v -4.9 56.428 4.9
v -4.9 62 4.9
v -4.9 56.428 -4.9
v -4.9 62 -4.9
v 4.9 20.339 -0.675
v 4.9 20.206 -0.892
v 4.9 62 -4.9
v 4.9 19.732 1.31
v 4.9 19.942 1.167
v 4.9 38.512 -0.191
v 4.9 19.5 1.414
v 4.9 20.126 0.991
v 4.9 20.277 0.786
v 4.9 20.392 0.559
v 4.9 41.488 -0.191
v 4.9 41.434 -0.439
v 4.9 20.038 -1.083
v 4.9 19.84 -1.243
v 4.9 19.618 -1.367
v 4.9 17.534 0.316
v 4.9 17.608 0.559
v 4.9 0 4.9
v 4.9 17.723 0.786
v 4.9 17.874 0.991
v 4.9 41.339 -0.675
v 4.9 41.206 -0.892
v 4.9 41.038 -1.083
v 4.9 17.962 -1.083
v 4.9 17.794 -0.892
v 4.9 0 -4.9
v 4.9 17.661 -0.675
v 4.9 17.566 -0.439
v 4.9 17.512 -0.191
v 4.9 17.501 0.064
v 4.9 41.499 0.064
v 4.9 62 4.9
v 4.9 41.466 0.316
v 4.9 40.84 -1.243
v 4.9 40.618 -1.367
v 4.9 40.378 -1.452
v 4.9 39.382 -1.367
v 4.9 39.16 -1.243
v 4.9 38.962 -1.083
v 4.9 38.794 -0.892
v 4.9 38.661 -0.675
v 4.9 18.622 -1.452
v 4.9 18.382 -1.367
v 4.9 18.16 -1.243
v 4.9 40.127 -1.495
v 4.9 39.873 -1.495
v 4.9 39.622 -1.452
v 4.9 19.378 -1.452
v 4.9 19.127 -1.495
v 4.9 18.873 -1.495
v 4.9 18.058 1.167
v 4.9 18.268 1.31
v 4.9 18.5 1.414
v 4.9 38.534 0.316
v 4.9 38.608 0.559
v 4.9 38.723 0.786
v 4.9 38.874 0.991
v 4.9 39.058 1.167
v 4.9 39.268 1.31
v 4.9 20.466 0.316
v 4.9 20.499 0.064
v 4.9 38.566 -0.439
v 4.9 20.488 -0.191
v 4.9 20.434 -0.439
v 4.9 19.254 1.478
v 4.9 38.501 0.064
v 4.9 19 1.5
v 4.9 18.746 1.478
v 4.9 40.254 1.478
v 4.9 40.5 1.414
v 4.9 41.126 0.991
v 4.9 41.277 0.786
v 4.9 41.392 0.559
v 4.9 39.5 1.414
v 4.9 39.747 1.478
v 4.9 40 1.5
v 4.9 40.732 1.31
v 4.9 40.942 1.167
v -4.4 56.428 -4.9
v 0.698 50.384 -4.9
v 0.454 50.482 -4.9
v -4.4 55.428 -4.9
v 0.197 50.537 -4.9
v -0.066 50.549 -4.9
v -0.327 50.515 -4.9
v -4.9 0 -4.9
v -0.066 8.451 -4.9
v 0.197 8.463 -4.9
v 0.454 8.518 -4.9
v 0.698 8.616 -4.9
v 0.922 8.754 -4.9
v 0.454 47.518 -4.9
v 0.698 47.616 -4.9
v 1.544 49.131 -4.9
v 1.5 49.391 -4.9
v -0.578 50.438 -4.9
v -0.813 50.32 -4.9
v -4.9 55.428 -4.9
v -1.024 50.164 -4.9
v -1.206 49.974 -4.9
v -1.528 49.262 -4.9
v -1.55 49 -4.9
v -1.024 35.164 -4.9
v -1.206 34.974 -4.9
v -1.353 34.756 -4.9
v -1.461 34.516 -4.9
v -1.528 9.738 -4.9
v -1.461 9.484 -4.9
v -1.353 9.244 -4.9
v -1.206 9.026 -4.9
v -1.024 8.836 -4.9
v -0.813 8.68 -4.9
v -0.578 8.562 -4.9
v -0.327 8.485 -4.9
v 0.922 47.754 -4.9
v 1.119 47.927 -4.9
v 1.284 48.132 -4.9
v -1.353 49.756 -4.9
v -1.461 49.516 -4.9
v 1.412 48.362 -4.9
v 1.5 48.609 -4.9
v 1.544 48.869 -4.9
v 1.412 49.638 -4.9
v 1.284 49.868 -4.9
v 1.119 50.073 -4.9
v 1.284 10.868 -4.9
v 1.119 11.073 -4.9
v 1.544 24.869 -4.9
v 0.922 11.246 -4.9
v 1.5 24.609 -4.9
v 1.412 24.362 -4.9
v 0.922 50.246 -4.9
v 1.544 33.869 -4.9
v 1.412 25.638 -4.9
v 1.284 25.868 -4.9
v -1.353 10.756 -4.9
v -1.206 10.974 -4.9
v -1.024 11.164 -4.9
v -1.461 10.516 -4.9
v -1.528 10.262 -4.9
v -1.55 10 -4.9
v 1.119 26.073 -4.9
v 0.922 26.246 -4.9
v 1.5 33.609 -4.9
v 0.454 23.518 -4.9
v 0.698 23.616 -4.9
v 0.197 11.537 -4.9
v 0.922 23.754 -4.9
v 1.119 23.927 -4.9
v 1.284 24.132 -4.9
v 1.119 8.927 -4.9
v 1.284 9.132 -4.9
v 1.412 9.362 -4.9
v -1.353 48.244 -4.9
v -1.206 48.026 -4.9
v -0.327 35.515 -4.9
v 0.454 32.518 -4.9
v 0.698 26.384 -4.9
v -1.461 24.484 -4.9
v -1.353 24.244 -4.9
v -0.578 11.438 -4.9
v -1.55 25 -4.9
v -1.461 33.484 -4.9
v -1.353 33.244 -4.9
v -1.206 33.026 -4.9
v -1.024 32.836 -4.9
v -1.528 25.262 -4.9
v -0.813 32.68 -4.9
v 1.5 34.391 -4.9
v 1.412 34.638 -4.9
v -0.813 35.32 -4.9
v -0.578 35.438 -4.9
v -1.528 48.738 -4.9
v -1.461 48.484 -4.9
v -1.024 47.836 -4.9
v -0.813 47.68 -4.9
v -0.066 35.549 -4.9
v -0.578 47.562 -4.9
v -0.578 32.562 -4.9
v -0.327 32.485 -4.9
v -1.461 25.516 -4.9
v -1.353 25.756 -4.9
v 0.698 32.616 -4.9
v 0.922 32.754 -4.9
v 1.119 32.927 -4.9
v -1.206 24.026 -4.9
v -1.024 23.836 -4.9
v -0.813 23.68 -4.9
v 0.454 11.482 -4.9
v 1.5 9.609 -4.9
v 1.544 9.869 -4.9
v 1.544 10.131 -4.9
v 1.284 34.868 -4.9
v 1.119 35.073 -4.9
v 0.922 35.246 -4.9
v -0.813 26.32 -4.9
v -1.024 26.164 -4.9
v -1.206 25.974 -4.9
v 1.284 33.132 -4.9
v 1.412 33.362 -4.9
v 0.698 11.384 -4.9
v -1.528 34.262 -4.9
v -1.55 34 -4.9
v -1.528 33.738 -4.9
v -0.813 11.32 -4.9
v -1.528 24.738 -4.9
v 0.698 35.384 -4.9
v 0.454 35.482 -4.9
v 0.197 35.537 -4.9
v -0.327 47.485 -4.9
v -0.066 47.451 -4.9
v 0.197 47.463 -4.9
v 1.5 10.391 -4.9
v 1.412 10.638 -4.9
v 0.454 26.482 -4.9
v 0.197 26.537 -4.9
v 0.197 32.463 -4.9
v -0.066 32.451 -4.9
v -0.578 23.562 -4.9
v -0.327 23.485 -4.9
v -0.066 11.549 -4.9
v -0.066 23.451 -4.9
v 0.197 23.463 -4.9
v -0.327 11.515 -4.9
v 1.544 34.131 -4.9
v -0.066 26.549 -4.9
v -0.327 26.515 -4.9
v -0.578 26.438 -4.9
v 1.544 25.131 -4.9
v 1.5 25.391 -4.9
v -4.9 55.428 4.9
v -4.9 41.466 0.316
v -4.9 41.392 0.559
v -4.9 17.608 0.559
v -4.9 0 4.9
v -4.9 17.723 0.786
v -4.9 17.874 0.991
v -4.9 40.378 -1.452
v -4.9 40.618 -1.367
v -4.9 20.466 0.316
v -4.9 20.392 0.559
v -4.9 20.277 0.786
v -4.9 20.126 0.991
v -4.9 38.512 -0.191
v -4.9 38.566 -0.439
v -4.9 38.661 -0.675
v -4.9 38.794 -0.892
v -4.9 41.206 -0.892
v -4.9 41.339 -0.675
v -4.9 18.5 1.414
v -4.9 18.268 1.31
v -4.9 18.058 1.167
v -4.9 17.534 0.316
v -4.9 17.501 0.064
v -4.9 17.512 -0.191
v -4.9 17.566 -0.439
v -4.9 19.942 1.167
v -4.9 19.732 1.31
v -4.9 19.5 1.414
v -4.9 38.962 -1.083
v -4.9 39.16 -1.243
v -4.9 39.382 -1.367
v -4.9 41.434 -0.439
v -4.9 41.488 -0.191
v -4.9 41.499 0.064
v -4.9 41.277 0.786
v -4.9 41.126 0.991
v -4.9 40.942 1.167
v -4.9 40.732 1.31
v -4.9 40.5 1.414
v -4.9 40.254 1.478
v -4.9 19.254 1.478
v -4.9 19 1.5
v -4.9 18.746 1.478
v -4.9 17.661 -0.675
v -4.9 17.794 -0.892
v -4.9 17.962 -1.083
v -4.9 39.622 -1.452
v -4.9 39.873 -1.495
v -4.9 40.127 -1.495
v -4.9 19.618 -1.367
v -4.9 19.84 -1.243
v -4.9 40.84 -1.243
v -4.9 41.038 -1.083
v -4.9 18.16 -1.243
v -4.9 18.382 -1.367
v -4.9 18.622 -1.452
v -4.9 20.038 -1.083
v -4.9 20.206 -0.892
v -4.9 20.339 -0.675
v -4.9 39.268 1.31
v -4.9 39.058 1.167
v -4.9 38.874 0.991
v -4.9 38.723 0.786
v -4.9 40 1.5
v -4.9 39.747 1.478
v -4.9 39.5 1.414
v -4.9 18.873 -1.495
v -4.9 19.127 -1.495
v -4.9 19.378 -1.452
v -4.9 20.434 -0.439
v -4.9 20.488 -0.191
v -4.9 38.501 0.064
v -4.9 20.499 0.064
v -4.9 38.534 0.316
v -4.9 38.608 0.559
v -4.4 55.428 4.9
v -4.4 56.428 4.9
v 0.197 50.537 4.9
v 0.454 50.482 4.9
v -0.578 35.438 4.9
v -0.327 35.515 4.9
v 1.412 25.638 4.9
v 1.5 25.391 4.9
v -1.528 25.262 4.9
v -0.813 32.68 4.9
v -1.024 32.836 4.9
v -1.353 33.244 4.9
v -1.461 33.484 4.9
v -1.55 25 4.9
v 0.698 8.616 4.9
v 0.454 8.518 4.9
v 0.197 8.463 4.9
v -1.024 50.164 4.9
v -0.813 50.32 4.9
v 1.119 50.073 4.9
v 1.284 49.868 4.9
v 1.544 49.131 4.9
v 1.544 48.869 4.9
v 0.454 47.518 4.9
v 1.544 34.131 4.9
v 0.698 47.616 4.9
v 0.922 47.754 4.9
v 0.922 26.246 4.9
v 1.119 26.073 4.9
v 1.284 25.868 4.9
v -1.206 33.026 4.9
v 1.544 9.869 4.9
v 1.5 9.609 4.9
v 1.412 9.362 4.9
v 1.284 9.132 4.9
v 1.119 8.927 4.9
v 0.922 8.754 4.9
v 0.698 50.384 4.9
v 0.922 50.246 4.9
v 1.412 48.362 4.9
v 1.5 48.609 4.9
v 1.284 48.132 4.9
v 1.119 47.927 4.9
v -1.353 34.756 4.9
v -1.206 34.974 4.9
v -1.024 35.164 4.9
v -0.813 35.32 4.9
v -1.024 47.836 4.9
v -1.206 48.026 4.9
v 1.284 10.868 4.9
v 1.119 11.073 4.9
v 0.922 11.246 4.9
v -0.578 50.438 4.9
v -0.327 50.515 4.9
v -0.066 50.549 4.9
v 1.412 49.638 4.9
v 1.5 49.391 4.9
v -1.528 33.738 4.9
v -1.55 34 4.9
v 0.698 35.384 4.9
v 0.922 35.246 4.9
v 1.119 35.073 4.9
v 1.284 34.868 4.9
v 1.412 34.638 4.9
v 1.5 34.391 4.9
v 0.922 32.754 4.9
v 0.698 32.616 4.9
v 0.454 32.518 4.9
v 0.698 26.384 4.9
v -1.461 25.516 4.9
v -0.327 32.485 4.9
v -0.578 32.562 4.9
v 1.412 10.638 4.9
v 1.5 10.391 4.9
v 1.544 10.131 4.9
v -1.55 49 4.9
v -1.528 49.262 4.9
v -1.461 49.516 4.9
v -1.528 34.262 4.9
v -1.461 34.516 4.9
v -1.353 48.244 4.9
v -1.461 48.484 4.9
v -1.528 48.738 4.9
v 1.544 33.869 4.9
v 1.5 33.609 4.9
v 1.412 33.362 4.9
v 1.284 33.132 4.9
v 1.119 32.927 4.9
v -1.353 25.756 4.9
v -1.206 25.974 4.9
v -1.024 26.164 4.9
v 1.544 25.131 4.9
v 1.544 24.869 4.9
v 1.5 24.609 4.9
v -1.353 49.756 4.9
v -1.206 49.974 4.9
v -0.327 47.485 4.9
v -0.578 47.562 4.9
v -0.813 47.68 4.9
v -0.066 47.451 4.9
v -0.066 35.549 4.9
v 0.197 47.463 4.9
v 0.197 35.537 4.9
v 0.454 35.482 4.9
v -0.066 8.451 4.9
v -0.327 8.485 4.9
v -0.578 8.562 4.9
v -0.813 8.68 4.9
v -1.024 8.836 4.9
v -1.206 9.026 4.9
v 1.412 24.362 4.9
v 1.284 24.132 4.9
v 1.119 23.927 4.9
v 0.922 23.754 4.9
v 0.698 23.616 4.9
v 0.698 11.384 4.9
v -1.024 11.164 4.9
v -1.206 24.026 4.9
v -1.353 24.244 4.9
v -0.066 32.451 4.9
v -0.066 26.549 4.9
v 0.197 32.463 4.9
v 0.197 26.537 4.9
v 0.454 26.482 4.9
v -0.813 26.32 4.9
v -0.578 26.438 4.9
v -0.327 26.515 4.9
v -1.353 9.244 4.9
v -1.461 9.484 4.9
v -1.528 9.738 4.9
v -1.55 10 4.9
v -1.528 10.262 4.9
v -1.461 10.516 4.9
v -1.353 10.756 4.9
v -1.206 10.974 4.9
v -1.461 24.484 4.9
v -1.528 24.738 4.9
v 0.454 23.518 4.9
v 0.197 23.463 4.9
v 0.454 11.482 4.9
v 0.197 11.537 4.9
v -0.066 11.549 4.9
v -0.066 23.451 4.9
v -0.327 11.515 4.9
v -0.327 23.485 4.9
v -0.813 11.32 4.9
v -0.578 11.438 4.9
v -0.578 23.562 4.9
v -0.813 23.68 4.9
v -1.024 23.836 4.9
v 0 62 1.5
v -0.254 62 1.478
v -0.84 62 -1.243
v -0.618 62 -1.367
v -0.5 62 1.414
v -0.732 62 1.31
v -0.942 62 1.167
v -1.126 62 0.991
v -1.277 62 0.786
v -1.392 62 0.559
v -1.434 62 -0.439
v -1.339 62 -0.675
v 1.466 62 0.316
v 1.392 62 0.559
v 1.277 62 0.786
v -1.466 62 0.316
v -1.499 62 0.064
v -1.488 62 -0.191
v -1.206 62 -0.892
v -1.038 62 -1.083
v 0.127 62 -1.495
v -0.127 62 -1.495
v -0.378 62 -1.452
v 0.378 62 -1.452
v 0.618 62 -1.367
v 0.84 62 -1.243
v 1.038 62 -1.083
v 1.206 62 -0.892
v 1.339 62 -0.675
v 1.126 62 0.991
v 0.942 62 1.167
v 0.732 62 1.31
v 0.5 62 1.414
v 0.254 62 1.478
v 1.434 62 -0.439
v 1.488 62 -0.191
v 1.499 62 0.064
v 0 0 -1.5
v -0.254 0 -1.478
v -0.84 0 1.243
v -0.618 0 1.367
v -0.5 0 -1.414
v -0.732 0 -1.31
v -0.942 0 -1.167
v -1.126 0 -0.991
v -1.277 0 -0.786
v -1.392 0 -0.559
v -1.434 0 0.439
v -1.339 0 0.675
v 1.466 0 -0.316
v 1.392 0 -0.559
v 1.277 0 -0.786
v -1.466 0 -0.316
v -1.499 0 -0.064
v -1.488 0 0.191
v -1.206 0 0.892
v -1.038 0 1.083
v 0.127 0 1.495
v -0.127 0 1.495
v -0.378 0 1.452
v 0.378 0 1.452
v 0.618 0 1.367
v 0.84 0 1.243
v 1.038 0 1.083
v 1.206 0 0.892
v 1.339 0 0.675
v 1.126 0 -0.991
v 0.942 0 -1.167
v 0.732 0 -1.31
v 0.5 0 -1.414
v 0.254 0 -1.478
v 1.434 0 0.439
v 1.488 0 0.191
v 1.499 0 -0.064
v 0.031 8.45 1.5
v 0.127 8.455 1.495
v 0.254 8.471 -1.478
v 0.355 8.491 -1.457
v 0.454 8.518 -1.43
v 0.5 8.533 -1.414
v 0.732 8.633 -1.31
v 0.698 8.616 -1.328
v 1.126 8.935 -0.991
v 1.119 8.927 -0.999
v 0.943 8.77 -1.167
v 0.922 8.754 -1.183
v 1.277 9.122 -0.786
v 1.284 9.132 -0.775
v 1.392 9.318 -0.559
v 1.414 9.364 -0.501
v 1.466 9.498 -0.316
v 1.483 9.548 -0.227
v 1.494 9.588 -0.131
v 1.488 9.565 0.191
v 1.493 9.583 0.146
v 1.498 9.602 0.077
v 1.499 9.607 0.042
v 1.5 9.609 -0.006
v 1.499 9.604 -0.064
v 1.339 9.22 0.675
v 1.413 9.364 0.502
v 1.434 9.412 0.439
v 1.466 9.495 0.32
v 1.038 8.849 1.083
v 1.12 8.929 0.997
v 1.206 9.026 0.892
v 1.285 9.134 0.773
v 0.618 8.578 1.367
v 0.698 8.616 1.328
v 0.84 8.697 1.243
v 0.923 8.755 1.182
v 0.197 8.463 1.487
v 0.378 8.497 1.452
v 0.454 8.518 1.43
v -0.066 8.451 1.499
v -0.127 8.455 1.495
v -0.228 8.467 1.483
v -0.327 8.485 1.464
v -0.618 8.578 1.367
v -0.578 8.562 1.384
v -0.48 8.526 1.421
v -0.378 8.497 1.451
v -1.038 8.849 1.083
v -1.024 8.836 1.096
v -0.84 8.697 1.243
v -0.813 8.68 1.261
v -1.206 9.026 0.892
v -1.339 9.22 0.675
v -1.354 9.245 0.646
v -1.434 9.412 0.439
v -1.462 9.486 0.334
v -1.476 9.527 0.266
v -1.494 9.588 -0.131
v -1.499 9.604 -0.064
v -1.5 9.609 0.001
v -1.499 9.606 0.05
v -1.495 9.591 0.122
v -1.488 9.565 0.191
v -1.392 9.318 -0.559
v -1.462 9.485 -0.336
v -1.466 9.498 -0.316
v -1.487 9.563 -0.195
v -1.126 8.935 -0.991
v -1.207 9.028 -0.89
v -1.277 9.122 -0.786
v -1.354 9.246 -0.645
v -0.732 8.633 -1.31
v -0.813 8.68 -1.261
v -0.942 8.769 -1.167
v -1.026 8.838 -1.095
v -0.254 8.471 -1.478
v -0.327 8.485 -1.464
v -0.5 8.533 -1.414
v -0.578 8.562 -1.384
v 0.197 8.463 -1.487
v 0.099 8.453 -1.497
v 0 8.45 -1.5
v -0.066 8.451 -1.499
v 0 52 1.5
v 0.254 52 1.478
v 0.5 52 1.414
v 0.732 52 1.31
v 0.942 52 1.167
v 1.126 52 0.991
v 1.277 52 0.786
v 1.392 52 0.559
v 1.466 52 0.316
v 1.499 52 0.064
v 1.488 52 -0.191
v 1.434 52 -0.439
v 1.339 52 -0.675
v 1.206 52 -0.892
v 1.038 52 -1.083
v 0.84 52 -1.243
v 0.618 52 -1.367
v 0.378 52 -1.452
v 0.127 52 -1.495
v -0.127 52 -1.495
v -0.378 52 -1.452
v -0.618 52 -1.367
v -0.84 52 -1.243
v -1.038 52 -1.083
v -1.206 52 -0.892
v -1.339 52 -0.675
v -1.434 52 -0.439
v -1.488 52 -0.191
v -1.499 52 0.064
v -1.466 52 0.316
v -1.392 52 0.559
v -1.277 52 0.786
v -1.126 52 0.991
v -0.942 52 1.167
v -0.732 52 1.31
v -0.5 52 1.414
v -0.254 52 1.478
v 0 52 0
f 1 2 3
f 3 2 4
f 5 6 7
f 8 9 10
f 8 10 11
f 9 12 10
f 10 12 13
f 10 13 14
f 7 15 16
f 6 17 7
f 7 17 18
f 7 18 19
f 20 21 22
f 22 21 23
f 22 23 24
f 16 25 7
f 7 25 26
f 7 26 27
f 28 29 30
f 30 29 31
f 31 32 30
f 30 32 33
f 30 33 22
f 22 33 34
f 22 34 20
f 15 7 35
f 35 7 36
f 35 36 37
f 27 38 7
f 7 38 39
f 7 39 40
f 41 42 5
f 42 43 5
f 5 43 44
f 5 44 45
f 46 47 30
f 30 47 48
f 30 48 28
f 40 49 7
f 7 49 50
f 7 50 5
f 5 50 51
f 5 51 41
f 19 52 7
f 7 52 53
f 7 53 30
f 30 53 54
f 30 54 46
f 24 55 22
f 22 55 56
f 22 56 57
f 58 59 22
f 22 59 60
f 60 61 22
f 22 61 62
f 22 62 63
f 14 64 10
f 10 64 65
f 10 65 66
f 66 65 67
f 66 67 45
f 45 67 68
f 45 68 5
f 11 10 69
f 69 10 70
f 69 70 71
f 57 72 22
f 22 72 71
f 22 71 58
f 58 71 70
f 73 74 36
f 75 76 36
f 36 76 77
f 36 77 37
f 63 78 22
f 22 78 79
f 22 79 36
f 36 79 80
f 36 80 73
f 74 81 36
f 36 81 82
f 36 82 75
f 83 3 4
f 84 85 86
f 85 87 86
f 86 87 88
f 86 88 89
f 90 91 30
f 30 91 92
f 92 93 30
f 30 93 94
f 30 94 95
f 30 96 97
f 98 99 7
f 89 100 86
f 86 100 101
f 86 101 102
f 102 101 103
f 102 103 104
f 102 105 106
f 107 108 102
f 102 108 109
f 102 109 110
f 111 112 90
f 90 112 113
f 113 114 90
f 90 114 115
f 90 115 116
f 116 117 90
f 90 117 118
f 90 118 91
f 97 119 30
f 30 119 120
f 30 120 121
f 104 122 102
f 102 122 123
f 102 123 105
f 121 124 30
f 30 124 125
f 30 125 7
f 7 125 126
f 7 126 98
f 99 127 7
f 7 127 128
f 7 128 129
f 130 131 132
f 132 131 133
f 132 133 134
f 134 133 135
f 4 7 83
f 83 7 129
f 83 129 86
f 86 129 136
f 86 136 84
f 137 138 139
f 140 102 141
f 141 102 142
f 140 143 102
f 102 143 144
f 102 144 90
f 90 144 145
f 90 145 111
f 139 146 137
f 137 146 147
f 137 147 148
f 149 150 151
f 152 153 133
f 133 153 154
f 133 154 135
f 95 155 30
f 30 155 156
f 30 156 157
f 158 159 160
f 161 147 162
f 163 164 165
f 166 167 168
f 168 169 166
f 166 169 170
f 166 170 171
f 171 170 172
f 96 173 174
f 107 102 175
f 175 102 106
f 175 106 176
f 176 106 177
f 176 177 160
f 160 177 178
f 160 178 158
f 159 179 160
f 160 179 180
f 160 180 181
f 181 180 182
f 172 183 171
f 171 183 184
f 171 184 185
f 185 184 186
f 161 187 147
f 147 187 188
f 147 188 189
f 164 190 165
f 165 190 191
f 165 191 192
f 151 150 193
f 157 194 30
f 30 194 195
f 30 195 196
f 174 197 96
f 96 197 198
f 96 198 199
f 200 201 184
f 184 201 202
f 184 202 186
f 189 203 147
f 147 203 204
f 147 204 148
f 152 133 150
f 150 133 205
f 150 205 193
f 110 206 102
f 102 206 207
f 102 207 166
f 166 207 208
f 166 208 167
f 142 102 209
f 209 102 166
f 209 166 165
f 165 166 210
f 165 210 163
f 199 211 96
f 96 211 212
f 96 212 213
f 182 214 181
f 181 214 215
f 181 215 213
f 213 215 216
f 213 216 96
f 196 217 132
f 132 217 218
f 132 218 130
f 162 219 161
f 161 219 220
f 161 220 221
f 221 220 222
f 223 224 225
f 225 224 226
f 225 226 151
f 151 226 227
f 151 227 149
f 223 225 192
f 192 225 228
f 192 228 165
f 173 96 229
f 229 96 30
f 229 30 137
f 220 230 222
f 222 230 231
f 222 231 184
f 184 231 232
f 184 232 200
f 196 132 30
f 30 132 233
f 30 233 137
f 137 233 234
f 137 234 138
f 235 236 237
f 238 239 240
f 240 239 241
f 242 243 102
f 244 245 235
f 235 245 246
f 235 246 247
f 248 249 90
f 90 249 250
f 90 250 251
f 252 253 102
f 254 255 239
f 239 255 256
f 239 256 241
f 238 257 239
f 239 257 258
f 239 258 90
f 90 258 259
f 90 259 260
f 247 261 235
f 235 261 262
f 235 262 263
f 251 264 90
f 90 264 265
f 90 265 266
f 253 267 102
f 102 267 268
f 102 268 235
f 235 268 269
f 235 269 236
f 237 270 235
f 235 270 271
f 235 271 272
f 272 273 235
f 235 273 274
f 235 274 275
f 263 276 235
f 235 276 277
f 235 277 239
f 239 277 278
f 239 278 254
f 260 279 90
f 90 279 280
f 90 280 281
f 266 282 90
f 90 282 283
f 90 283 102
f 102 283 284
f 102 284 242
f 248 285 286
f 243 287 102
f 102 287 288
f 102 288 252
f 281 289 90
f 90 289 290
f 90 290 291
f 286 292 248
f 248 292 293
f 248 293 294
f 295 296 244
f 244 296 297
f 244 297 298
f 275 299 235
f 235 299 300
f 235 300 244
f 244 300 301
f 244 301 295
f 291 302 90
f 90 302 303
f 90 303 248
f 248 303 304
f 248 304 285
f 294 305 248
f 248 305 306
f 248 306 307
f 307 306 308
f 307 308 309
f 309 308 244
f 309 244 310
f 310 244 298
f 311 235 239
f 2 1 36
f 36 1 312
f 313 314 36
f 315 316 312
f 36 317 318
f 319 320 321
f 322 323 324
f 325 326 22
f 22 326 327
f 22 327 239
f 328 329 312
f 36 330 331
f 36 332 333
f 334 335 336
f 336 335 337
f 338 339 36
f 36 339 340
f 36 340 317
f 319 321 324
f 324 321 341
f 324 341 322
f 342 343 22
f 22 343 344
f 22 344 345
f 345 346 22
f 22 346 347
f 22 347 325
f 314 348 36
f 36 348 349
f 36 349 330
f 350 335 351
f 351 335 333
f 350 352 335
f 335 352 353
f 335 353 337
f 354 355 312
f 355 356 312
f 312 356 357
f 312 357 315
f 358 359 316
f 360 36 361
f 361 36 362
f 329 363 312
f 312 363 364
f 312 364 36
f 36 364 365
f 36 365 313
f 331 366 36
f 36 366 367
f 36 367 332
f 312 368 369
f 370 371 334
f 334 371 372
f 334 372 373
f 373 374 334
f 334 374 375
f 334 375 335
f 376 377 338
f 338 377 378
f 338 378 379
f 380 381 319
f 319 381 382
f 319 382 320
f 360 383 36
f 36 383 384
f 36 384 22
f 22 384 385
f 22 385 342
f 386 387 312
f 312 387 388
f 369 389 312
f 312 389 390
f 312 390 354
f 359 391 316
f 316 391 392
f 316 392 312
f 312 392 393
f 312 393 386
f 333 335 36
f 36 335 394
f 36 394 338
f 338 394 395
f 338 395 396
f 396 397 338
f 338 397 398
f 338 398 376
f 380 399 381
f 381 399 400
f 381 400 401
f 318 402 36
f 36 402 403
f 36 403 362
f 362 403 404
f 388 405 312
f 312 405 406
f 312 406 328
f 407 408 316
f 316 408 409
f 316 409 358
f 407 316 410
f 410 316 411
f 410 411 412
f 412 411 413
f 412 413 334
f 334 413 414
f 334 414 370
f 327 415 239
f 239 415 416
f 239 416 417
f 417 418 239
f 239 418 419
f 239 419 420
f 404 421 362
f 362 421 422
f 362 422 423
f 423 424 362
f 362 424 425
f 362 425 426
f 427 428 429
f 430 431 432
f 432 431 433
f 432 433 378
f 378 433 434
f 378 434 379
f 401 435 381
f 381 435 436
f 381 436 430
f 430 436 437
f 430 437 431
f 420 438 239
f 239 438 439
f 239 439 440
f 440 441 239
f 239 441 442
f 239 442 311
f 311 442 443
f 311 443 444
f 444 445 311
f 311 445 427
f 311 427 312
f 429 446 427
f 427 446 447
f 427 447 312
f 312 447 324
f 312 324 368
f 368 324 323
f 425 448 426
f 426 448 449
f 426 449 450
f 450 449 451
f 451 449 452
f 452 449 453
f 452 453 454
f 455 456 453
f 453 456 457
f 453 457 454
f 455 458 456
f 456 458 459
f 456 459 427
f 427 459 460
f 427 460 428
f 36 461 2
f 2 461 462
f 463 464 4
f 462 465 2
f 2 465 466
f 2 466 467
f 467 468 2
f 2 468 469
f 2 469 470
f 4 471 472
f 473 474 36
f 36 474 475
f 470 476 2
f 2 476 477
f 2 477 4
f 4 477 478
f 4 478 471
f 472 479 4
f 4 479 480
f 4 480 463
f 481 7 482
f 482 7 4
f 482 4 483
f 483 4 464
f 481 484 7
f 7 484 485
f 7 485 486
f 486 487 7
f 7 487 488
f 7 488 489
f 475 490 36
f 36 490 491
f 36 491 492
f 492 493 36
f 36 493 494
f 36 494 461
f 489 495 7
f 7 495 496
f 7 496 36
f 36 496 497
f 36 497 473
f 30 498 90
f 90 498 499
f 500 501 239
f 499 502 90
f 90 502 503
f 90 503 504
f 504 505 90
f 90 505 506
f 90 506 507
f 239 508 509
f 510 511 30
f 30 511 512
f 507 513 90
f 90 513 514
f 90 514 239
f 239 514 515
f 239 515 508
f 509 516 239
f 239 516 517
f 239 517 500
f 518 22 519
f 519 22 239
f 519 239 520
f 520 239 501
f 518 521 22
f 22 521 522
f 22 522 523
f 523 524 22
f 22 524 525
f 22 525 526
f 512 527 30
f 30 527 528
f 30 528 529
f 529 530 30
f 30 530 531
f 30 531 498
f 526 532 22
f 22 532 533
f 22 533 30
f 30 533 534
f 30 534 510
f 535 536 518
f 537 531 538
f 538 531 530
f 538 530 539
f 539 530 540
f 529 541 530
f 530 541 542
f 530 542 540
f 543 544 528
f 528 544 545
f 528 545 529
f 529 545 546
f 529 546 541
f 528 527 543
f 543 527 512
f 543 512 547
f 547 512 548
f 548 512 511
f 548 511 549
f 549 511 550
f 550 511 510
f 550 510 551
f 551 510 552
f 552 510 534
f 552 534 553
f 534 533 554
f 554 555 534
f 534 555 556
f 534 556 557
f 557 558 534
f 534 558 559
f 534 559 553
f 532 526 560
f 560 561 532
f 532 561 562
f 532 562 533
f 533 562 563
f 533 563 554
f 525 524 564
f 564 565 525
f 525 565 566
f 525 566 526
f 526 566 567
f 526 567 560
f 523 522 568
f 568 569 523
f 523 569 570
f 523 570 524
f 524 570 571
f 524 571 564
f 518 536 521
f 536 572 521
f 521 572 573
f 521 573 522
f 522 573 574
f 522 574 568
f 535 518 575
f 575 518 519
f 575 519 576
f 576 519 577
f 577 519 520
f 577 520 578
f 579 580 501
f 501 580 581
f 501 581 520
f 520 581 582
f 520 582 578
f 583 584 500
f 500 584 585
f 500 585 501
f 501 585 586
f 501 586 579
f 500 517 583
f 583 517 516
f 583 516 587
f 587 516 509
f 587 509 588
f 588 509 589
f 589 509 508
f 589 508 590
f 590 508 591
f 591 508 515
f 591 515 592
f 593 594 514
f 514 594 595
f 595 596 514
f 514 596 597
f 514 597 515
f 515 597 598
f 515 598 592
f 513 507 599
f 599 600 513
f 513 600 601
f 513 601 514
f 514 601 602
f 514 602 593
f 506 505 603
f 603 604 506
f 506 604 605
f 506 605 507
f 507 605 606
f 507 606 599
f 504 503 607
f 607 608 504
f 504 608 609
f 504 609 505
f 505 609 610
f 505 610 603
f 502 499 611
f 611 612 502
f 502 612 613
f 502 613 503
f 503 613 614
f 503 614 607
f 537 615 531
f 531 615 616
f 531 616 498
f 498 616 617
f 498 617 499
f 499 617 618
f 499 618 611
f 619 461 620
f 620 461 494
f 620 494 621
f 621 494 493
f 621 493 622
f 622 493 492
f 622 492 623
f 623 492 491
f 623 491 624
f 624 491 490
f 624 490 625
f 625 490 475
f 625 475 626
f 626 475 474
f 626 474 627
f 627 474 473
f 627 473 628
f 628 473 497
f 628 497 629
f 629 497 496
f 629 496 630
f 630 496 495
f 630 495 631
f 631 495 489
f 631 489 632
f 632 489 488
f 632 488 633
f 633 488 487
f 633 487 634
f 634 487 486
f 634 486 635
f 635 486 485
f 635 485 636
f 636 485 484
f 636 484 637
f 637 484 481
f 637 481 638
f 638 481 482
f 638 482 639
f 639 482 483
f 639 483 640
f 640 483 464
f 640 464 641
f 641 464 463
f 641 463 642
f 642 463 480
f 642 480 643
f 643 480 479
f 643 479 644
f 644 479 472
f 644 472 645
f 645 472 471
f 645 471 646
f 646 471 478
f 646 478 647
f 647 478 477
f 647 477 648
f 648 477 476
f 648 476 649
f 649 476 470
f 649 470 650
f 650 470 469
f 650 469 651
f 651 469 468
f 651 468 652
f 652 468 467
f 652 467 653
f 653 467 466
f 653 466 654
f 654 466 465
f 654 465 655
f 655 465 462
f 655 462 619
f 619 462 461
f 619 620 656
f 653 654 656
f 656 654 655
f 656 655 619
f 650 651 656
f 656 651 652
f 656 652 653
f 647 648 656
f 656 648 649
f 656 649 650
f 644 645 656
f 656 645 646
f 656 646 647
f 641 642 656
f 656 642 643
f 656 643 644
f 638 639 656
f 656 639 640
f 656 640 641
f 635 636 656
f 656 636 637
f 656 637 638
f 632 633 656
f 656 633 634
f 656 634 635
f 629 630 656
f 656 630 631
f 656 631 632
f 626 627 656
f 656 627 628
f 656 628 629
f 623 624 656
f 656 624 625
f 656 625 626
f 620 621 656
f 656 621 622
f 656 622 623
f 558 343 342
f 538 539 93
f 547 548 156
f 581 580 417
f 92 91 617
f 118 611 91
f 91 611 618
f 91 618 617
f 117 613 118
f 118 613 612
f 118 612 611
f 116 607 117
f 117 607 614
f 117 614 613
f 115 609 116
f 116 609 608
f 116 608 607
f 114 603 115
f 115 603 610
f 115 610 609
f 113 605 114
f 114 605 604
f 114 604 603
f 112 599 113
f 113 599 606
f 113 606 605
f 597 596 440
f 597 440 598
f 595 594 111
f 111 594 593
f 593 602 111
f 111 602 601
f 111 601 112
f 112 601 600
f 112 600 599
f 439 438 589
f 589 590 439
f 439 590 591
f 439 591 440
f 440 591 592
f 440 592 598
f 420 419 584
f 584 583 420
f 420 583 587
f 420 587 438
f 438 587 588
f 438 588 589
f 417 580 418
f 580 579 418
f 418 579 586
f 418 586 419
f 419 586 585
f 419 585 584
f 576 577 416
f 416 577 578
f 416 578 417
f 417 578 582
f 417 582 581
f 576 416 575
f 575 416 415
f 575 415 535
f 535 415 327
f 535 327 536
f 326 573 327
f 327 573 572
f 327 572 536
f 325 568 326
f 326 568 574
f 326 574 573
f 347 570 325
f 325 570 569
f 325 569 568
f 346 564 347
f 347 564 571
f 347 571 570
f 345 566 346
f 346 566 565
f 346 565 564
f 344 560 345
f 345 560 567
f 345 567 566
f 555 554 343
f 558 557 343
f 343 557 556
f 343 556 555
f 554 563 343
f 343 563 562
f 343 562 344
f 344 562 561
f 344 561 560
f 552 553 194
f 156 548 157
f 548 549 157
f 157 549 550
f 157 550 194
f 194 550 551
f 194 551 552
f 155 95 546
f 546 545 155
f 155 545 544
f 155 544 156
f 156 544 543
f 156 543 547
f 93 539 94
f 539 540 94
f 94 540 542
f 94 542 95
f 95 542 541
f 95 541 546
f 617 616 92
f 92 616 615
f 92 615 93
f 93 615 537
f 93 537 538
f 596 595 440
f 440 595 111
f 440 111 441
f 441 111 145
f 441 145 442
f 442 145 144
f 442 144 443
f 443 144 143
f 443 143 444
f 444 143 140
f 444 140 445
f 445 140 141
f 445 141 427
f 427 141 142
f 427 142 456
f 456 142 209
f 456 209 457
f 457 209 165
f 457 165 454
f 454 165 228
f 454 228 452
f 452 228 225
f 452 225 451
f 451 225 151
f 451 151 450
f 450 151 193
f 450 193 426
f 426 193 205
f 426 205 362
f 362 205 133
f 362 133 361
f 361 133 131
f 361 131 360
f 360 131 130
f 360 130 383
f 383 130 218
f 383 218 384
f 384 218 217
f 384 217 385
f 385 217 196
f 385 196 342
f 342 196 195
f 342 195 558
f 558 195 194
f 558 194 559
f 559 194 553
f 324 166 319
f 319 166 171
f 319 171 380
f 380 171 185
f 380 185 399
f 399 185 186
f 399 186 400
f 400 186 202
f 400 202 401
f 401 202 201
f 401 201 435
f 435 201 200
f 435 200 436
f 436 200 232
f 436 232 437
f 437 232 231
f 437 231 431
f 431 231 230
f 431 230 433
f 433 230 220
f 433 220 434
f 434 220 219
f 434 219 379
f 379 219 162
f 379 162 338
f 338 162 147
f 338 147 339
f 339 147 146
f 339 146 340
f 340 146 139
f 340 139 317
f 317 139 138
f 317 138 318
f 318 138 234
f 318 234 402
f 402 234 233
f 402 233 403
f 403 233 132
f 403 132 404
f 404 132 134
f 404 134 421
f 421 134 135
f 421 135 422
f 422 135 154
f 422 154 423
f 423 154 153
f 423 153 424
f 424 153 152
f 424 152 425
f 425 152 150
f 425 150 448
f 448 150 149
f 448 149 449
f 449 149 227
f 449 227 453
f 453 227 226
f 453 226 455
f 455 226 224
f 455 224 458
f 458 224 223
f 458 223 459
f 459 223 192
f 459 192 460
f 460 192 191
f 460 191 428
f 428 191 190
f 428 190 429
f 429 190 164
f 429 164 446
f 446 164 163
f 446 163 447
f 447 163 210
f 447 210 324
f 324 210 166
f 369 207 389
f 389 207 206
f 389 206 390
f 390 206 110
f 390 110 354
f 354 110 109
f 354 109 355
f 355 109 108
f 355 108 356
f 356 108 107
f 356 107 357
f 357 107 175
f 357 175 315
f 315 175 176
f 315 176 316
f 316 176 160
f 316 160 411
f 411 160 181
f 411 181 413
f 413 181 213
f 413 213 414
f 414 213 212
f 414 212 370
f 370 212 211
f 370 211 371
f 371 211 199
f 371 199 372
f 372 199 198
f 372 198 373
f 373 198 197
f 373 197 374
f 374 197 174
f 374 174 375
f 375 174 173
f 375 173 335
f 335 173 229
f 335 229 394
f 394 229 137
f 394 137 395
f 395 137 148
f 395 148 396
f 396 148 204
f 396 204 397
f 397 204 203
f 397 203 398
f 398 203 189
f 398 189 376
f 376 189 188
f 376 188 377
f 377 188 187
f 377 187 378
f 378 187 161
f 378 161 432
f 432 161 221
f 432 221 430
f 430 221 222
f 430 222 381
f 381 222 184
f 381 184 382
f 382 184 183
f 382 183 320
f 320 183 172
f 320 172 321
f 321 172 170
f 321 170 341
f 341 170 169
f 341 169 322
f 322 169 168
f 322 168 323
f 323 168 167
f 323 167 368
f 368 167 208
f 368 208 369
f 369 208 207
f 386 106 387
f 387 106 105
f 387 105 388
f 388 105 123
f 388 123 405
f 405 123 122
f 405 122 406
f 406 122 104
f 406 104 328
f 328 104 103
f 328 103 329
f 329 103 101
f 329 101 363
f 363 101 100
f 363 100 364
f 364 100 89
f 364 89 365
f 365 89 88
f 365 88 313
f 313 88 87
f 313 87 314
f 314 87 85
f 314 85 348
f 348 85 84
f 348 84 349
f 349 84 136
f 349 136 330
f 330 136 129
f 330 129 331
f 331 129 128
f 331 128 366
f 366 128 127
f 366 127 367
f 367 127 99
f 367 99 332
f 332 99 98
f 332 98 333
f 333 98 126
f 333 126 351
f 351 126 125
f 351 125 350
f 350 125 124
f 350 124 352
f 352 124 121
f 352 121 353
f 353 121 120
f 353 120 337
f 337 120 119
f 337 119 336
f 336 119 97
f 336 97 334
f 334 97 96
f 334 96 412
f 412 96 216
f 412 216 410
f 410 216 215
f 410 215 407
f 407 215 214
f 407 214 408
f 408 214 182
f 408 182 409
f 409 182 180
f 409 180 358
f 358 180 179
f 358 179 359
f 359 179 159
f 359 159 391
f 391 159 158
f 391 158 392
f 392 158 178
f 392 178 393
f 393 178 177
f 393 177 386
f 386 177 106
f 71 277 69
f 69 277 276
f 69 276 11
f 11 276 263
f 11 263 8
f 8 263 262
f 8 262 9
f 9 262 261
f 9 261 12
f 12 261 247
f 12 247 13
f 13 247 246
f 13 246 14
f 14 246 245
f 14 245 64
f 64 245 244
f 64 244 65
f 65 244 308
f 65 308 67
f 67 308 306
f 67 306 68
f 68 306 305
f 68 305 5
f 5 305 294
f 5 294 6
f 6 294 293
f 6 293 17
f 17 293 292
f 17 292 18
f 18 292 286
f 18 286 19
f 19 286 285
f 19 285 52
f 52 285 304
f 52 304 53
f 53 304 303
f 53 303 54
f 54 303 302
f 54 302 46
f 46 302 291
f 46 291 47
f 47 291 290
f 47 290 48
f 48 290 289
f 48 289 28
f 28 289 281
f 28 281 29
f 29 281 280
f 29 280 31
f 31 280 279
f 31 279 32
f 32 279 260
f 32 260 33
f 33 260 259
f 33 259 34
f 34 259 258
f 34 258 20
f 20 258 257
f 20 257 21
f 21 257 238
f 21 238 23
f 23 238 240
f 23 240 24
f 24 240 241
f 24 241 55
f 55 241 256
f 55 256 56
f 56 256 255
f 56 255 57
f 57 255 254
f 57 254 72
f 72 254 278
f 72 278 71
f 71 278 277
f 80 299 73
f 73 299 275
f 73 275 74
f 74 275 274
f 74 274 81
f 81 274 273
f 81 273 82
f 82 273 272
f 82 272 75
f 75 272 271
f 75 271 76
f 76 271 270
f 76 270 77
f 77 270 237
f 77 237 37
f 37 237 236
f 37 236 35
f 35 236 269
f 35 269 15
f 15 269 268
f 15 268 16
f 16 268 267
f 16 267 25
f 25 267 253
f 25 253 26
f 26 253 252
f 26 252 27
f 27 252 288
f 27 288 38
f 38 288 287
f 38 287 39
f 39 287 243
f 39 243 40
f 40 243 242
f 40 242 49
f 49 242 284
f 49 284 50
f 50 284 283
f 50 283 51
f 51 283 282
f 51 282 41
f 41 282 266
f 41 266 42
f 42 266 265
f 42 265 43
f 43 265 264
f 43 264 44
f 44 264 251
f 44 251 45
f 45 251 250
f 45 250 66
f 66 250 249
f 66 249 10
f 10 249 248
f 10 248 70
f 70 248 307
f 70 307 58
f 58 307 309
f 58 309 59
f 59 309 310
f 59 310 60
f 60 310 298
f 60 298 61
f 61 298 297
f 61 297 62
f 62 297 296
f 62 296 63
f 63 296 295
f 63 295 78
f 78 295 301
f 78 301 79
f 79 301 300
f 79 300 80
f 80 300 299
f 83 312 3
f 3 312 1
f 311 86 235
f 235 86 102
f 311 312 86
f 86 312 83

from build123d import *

# Parameters (mm, degrees)
SKETCH1_W      = 9.8
SKETCH1_H      = 9.8
EXTRUDE1_DEPTH = 62
SKETCH2_R      = 1.5
EXTRUDE2_DEPTH = 10
EXTRUDE3_START = -10
SKETCH3_R      = 1.5
EXTRUDE3_DEPTH = 10
SKETCH4_R      = 1.55
EXTRUDE4_DEPTH = 10
SKETCH5_R      = 1.5
EXTRUDE5_DEPTH = 10
SKETCH6_W      = 9.8
SKETCH6_H      = 1
EXTRUDE6_DEPTH = 0.5


with BuildPart() as part:
    # Sketch1 → Extrude1 (new body)
    with BuildSketch(Plane(origin=(0, 0, 0), x_dir=(1, 0, 0), z_dir=(0, 1, 0))):
        Rectangle(SKETCH1_W, SKETCH1_H)
    extrude(amount=EXTRUDE1_DEPTH)

    # Sketch2 → Extrude2 (cut)
    with BuildSketch(Plane.XZ):
        with Locations(Location((0, 0, 0), (0, 0, 270))):
            Circle(SKETCH2_R)
    extrude(amount=-EXTRUDE2_DEPTH, mode=Mode.SUBTRACT)

    # Sketch3 → Extrude3 (cut)
    with BuildSketch(Plane(origin=(0, 62, 0), x_dir=(1, 0, 0), z_dir=(0, 1, 0)).offset(EXTRUDE3_START)):
        with Locations(Location((0, 0, 0), (0, 0, 90))):
            Circle(SKETCH3_R)
    extrude(amount=EXTRUDE3_DEPTH, mode=Mode.SUBTRACT)

    # Sketch4 → Extrude4 (cut)
    with BuildSketch(Plane(origin=(0, 0, -4.9), x_dir=(-1, 0, 0), z_dir=(0, 0, -1))):
        with Locations((0, 10)):
            Circle(SKETCH4_R)
        with Locations((0, 49)):
            Circle(SKETCH4_R)
        with Locations((0, 34)):
            Circle(SKETCH4_R)
        with Locations((0, 25)):
            Circle(SKETCH4_R)
    extrude(amount=-EXTRUDE4_DEPTH, mode=Mode.SUBTRACT)

    # Sketch5 → Extrude5 (cut)
    with BuildSketch(Plane.ZY.offset(4.9)):
        with Locations((0, 40)):
            Circle(SKETCH5_R)
        with Locations((0, 19)):
            Circle(SKETCH5_R)
    extrude(amount=-EXTRUDE5_DEPTH, mode=Mode.SUBTRACT)

    # Sketch6 → Extrude6 (cut)
    with BuildSketch(Plane.ZY.offset(4.9)):
        with Locations((0, 55.927600584)):
            Rectangle(SKETCH6_W, SKETCH6_H)
    extrude(amount=-EXTRUDE6_DEPTH, mode=Mode.SUBTRACT)


solid = part.part
